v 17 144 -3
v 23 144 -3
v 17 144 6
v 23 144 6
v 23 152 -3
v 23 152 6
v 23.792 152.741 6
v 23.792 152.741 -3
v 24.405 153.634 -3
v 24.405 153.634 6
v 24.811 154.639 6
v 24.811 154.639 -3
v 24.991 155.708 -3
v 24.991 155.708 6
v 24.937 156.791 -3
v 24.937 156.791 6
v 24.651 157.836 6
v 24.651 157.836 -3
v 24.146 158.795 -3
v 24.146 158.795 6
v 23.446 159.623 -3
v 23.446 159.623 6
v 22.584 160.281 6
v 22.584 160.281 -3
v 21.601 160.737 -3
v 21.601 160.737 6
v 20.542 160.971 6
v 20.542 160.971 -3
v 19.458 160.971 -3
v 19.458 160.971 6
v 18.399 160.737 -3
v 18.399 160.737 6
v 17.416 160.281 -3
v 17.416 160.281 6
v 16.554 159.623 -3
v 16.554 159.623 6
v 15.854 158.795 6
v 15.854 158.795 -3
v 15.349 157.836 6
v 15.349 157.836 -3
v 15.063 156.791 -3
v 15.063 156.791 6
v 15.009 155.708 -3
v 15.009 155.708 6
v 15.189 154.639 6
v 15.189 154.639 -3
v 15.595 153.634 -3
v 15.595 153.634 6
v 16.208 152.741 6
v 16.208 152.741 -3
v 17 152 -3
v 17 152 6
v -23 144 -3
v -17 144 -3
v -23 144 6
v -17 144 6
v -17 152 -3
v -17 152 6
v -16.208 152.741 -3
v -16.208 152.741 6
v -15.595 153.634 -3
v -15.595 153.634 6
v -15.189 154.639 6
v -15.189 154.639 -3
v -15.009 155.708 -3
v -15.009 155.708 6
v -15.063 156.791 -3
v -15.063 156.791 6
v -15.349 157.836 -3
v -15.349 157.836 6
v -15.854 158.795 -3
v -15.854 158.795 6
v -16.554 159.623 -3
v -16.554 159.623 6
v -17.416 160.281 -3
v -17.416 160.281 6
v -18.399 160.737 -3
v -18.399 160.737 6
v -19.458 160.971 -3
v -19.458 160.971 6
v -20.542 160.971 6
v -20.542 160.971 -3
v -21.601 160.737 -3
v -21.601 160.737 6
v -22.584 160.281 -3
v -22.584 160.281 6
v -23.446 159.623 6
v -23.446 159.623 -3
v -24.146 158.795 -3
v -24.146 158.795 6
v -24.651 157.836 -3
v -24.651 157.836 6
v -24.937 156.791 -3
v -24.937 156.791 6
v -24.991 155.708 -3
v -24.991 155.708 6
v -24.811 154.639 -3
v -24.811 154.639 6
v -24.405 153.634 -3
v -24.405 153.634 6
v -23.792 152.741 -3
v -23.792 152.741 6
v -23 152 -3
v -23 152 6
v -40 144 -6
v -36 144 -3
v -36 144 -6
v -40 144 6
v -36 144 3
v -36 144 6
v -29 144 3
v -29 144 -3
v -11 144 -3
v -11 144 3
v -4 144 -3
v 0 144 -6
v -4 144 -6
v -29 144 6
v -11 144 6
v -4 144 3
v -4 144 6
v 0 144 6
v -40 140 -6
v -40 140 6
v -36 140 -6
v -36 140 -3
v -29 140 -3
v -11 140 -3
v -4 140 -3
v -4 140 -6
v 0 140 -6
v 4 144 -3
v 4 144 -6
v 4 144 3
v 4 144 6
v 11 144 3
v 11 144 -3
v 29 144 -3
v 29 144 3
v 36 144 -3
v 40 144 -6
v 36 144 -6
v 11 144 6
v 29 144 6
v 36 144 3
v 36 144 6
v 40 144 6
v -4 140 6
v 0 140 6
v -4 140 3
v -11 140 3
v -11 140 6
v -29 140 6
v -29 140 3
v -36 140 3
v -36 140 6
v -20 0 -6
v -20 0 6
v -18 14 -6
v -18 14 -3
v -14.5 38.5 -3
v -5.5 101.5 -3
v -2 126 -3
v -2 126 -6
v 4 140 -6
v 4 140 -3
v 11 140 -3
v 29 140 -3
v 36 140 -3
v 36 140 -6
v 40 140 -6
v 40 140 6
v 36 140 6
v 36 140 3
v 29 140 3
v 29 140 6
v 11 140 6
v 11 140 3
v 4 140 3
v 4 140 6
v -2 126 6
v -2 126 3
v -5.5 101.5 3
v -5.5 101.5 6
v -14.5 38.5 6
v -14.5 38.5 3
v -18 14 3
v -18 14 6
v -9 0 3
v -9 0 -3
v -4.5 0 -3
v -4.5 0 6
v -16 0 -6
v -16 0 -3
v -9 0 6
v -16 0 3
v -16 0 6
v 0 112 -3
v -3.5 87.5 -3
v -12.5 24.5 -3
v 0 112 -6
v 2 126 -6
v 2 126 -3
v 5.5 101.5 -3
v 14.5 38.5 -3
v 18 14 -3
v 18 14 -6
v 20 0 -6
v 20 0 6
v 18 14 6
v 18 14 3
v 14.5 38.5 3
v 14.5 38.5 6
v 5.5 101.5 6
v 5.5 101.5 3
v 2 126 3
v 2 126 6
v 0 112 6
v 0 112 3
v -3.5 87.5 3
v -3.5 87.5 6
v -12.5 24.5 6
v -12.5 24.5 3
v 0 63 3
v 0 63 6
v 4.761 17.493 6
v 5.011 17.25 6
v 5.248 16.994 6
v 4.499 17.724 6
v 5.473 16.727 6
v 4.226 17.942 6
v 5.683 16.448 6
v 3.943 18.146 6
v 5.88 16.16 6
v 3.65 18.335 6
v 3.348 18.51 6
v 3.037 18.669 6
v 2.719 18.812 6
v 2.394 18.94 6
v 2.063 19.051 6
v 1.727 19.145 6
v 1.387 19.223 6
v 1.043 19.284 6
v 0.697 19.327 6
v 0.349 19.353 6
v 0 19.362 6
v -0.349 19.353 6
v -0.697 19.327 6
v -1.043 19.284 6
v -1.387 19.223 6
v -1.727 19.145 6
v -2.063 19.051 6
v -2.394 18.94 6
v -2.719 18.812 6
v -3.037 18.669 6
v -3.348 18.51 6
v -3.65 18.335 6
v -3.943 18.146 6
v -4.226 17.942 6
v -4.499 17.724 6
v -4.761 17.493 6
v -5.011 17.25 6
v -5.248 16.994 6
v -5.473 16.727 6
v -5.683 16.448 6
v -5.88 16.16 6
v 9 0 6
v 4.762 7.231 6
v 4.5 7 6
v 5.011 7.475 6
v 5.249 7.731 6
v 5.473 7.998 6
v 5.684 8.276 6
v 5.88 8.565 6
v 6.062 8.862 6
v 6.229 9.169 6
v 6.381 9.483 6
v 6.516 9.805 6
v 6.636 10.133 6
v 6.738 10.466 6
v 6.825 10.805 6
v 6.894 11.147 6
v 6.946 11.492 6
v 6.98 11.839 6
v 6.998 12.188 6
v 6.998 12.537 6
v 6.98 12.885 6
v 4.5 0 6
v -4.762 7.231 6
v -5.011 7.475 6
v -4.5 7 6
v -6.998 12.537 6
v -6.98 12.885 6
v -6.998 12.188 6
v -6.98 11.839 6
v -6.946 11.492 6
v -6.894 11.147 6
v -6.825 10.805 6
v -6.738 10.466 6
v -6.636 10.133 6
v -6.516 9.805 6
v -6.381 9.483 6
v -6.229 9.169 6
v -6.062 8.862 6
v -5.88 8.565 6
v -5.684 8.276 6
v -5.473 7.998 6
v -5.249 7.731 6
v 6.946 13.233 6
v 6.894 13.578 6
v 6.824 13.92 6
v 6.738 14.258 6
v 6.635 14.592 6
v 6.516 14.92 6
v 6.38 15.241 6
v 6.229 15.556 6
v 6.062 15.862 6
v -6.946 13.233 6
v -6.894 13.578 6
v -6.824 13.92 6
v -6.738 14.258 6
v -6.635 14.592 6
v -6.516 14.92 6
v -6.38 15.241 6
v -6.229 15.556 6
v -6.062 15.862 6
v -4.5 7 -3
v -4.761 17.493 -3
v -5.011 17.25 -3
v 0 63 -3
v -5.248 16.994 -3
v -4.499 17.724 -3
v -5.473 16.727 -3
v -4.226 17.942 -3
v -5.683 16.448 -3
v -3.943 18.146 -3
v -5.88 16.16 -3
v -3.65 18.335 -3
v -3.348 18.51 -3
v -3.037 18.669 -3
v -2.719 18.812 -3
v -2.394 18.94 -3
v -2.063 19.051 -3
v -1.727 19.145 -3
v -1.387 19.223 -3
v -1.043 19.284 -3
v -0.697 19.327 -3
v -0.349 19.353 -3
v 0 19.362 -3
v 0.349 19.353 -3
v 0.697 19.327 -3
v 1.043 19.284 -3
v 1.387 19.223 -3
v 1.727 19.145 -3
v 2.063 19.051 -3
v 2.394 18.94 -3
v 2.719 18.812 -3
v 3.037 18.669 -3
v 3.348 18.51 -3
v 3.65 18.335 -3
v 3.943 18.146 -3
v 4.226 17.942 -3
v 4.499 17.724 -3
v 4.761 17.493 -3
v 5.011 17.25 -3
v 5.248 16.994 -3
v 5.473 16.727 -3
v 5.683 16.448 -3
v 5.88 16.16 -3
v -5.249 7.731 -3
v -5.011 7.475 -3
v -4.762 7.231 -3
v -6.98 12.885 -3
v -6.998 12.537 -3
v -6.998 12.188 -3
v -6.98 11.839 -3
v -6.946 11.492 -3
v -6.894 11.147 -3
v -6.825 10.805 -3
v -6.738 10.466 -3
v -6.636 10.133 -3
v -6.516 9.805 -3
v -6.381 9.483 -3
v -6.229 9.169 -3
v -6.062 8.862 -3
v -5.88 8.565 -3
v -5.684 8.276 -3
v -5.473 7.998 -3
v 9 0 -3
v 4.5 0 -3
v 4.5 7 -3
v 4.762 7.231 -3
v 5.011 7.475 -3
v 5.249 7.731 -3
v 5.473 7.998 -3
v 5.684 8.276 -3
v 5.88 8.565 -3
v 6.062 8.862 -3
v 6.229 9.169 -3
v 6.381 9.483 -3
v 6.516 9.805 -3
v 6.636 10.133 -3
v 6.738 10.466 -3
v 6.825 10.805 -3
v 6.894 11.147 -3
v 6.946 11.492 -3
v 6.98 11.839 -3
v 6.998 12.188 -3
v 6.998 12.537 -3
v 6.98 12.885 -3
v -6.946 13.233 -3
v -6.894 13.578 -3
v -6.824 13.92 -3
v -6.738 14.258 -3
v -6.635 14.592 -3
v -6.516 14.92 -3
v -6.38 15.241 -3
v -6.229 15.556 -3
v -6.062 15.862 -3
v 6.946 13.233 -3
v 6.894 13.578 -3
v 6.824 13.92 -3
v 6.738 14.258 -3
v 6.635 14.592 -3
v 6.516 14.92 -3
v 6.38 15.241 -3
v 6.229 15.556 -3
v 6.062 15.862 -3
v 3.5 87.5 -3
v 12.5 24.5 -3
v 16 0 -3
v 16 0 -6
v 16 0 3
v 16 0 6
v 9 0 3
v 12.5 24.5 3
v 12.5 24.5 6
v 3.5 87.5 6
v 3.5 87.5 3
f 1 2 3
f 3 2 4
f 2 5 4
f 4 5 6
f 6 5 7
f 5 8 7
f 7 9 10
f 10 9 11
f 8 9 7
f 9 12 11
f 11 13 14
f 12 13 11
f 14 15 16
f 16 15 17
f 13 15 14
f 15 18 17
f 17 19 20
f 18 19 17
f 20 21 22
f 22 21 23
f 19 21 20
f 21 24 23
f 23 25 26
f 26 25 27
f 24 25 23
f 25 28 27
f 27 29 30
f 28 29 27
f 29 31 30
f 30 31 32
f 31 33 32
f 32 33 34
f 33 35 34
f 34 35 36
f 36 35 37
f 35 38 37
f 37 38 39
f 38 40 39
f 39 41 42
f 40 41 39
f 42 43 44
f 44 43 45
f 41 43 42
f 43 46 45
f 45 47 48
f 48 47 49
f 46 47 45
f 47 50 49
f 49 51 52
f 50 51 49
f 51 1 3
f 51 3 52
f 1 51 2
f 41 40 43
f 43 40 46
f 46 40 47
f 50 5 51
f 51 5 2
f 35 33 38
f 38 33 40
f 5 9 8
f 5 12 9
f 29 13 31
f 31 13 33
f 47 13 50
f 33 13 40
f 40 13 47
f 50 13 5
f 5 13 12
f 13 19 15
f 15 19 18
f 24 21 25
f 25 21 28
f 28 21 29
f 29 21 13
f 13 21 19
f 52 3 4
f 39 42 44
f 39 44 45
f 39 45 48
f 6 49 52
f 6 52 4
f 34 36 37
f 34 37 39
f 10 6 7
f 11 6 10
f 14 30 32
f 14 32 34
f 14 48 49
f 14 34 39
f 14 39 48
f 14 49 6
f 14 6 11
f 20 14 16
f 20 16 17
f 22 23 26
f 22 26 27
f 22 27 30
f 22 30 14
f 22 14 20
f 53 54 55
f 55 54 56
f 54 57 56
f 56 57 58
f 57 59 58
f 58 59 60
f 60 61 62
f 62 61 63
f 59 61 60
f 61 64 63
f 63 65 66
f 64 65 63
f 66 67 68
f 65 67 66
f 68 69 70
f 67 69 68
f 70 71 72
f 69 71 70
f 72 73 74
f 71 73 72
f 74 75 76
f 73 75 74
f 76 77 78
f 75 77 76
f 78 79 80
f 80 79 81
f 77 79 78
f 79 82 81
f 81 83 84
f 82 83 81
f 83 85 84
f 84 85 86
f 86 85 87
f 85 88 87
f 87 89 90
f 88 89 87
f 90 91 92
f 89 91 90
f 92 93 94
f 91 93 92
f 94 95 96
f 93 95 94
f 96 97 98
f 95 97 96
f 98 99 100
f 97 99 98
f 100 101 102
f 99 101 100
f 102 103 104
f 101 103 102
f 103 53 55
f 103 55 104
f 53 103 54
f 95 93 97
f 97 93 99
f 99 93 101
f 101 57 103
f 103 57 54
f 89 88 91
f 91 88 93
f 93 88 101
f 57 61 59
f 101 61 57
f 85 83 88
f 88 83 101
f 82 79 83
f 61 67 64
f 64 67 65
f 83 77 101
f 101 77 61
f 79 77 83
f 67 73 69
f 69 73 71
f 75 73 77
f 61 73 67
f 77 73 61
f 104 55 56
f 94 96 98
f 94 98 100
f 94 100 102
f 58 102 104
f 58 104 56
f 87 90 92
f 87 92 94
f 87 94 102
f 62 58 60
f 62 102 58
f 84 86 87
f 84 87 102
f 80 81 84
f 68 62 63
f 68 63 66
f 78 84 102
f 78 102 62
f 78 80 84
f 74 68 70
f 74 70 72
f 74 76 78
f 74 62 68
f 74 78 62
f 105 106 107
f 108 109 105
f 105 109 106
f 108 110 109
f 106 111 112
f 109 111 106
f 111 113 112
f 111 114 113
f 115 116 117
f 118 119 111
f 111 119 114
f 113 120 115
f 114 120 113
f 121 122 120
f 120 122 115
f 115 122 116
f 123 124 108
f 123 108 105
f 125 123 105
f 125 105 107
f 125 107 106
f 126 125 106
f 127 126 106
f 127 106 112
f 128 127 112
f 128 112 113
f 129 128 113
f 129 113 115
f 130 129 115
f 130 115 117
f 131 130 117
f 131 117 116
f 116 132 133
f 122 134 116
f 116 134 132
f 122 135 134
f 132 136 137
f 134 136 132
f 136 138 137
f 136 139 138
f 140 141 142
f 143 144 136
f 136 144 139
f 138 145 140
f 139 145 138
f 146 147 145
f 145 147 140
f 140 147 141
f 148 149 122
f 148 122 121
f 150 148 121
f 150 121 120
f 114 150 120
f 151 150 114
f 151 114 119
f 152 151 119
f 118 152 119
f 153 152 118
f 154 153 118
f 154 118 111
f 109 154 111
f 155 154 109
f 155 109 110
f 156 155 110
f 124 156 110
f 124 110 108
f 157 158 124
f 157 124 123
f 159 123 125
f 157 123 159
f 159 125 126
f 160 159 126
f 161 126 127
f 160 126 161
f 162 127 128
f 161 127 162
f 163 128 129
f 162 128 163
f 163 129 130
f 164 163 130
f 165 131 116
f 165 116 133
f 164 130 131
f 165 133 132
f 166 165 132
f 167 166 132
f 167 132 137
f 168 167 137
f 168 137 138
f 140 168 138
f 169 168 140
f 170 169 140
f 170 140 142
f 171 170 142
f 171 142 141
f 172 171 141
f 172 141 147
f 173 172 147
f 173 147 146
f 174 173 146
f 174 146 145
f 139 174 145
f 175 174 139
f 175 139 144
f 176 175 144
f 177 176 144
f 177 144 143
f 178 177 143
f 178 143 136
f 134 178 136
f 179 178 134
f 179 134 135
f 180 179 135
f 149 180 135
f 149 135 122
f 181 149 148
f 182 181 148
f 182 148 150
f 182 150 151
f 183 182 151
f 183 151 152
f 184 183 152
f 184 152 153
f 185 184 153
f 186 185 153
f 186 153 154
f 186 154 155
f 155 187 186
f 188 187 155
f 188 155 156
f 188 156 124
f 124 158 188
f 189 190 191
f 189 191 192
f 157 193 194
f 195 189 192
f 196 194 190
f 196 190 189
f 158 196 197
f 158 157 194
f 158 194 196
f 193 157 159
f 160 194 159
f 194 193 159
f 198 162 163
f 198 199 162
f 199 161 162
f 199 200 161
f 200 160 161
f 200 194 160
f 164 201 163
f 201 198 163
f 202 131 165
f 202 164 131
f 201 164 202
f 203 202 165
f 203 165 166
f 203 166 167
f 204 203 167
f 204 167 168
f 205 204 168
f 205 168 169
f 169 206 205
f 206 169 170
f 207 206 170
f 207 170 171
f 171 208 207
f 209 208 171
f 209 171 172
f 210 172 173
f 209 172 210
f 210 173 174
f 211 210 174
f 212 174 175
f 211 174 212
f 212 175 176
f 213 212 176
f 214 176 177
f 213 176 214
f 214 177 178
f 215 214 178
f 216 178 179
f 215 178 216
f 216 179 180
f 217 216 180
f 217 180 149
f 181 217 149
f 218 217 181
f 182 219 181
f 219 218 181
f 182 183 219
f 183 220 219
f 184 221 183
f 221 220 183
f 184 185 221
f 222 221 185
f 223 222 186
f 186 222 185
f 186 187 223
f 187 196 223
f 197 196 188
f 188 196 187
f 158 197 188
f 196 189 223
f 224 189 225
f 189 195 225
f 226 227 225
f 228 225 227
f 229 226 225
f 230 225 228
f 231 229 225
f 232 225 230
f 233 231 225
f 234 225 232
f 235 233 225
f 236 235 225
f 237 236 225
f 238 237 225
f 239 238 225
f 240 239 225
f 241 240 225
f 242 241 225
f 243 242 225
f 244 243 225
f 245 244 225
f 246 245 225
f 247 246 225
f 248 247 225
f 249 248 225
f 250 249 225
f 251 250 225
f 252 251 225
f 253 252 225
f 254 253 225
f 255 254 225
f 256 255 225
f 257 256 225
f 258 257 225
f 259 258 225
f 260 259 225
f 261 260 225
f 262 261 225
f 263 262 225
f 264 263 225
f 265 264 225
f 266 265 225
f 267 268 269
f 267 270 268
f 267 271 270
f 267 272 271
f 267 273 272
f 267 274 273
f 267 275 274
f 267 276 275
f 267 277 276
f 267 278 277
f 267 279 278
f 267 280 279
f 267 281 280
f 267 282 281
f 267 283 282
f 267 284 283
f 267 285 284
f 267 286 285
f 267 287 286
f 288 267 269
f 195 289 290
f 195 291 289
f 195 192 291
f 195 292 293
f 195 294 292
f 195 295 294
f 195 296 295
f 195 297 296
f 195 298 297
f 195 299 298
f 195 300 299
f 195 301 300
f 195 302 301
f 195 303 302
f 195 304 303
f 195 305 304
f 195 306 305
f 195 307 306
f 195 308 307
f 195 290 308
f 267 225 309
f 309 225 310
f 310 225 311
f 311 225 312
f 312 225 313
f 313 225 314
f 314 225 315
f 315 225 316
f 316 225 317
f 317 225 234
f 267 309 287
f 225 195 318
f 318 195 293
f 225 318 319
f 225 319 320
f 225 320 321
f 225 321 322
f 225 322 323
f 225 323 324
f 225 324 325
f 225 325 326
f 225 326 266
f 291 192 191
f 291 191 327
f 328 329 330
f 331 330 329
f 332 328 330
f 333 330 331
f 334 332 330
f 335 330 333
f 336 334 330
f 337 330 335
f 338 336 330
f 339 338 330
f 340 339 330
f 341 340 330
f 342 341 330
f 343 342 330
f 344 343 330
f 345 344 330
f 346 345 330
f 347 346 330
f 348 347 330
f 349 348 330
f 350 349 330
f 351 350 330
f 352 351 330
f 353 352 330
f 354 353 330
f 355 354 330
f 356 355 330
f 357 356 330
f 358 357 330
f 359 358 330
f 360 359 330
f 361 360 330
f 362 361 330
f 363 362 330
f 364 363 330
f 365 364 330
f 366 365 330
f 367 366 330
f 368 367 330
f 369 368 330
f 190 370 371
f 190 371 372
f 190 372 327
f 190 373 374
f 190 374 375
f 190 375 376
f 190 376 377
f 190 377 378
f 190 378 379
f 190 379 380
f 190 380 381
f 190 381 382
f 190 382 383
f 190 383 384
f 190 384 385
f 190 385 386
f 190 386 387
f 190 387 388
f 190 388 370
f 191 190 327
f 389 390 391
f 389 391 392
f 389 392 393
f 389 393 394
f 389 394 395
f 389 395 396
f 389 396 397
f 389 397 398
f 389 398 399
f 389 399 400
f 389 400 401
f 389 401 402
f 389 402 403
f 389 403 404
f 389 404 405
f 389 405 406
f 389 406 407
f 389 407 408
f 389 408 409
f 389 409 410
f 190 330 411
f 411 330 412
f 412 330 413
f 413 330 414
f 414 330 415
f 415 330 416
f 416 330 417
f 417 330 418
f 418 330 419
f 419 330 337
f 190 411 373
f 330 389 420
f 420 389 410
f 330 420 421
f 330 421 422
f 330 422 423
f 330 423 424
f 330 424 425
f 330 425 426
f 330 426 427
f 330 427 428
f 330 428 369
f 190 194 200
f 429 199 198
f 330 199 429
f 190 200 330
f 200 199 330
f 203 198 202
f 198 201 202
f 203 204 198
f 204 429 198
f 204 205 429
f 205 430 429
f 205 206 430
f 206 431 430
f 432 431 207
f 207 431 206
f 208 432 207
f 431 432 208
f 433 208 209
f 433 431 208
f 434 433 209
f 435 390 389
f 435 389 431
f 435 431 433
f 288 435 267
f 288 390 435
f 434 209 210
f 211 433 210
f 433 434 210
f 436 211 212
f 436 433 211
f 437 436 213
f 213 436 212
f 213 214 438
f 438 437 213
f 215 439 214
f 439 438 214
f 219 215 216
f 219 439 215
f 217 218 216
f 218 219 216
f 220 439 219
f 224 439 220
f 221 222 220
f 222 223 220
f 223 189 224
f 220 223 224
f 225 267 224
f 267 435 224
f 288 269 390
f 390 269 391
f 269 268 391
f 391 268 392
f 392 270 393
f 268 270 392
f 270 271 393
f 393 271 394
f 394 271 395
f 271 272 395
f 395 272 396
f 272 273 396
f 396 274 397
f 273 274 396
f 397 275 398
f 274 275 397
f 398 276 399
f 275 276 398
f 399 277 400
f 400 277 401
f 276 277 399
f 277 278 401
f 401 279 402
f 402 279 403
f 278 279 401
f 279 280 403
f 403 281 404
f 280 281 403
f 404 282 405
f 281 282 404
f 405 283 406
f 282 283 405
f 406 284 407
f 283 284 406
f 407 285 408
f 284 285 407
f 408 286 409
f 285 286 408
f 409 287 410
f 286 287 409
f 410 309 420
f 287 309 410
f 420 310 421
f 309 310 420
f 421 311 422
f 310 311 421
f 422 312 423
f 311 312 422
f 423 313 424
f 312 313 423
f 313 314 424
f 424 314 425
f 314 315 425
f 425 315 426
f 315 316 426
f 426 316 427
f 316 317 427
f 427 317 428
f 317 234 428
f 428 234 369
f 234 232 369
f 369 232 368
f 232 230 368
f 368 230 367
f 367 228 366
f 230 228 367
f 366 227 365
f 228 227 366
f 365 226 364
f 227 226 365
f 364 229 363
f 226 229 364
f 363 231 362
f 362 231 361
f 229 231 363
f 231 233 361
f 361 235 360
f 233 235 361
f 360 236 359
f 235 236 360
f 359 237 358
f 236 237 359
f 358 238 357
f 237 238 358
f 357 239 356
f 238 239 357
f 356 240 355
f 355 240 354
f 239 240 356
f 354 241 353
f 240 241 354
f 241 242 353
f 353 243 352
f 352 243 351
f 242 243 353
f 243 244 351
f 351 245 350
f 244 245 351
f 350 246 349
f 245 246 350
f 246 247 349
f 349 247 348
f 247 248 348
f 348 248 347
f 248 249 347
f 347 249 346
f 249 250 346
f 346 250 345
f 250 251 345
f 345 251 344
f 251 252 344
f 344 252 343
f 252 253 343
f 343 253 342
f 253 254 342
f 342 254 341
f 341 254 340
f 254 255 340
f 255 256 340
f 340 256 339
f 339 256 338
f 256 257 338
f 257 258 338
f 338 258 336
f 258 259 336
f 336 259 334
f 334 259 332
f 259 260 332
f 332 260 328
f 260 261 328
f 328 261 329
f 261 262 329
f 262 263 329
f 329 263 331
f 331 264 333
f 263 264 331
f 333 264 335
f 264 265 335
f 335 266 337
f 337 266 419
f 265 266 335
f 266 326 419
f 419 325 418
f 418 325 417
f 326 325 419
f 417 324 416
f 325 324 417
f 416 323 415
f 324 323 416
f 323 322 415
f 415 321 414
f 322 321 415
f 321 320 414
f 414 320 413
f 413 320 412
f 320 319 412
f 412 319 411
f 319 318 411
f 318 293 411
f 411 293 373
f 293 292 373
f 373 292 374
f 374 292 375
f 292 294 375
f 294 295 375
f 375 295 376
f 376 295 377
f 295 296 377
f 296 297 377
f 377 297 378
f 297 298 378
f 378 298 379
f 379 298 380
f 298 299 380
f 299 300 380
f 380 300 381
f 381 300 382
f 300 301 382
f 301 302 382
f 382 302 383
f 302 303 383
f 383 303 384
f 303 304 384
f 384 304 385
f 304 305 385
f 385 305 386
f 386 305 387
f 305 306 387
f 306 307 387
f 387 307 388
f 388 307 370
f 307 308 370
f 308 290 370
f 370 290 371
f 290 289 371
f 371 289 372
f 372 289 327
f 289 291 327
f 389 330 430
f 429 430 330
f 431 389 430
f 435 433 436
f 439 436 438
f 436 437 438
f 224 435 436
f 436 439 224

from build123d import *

# Parameters (mm, degrees)
SKETCH004_W       = 32
SKETCH004_H       = 3
SKETCH005_W       = 7
SKETCH005_H       = 3
SKETCH006_W       = 7
SKETCH006_H       = 3
POCKET_DEPTH      = 6.001
POCKET_DEPTH_BACK = -6.001
PAD001_DEPTH      = 6
PAD001_DEPTH_BACK = 3
PAD002_DEPTH      = 6
PAD002_DEPTH_BACK = 3


with BuildPart() as body:
    # AdditivePipe: sweep along a path in Sketch
    with BuildLine(Plane.XY) as additivepipe_path:
        Line((-20, 144), (-20, 140))
        Line((-20, 140), (0, 0))
    # Sketch002 → AdditivePipe (sweep)
    with BuildSketch(Plane.XZ):
        Polygon((-20, 6), (-20, -6), (-16, -6), (-16, -3), (-9, -3), (9, -3), (16, -3), (16, -6), (20, -6), (20, 6), (16, 6), (16, 3), (9, 3), (9, 6), (-9, 6), (-9, 3), (-16, 3), (-16, 6), align=None)
    sweep(path=additivepipe_path.line)

    # AdditivePipe001: sweep along a path in Sketch001
    with BuildLine(Plane.XY) as additivepipe001_path:
        Line((20, 144), (20, 140))
        Line((20, 140), (0, 0))
    # Sketch002 → AdditivePipe001 (sweep)
    with BuildSketch(Plane.XZ):
        Polygon((-20, 6), (-20, -6), (-16, -6), (-16, -3), (-9, -3), (9, -3), (16, -3), (16, -6), (20, -6), (20, 6), (16, 6), (16, 3), (9, 3), (9, 6), (-9, 6), (-9, 3), (-16, 3), (-16, 6), align=None)
    sweep(path=additivepipe001_path.line)

    # SubtractivePipe: sweep along a path in Sketch
    with BuildLine(Plane.XY) as subtractivepipe_path:
        Line((-20, 144), (-20, 140))
        Line((-20, 140), (0, 0))
    # Sketch004 → SubtractivePipe (sweep, cut)
    with BuildSketch(Plane.XZ):
        with Locations((0, -4.5)):
            Rectangle(SKETCH004_W, SKETCH004_H)
    sweep(path=subtractivepipe_path.line, mode=Mode.SUBTRACT)

    # SubtractivePipe001: sweep along a path in Sketch001
    with BuildLine(Plane.XY) as subtractivepipe001_path:
        Line((20, 144), (20, 140))
        Line((20, 140), (0, 0))
    # Sketch004 → SubtractivePipe001 (sweep, cut)
    with BuildSketch(Plane.XZ):
        with Locations((0, -4.5)):
            Rectangle(SKETCH004_W, SKETCH004_H)
    sweep(path=subtractivepipe001_path.line, mode=Mode.SUBTRACT)

    # SubtractivePipe002: sweep along a path in Sketch
    with BuildLine(Plane.XY) as subtractivepipe002_path:
        Line((-20, 144), (-20, 140))
        Line((-20, 140), (0, 0))
    # Sketch005 → SubtractivePipe002 (sweep, cut)
    with BuildSketch(Plane.XZ):
        with Locations((-12.5, 4.5)):
            Rectangle(SKETCH005_W, SKETCH005_H)
    sweep(path=subtractivepipe002_path.line, mode=Mode.SUBTRACT)

    # SubtractivePipe003: sweep along a path in Sketch001
    with BuildLine(Plane.XY) as subtractivepipe003_path:
        Line((20, 144), (20, 140))
        Line((20, 140), (0, 0))
    # Sketch005 → SubtractivePipe003 (sweep, cut)
    with BuildSketch(Plane.XZ):
        with Locations((-12.5, 4.5)):
            Rectangle(SKETCH005_W, SKETCH005_H)
    sweep(path=subtractivepipe003_path.line, mode=Mode.SUBTRACT)

    # SubtractivePipe004: sweep along a path in Sketch
    with BuildLine(Plane.XY) as subtractivepipe004_path:
        Line((-20, 144), (-20, 140))
        Line((-20, 140), (0, 0))
    # Sketch006 → SubtractivePipe004 (sweep, cut)
    with BuildSketch(Plane.XZ):
        with Locations((12.5, 4.5)):
            Rectangle(SKETCH006_W, SKETCH006_H)
    sweep(path=subtractivepipe004_path.line, mode=Mode.SUBTRACT)

    # SubtractivePipe005: sweep along a path in Sketch001
    with BuildLine(Plane.XY) as subtractivepipe005_path:
        Line((20, 144), (20, 140))
        Line((20, 140), (0, 0))
    # Sketch006 → SubtractivePipe005 (sweep, cut)
    with BuildSketch(Plane.XZ):
        with Locations((12.5, 4.5)):
            Rectangle(SKETCH006_W, SKETCH006_H)
    sweep(path=subtractivepipe005_path.line, mode=Mode.SUBTRACT)

    # Sketch003 → Pocket (cut, two sides)
    with BuildSketch(Plane.XY) as pocket_sk:
        with BuildLine():
            Line((-4.5, 0), (4.5, 0))
            Line((4.5, 0), (4.5, 7))
            ThreePointArc((4.5, 7), (0, 19.361903), (-4.5, 7))
            Line((-4.5, 0), (-4.5, 7))
        make_face()
    extrude(amount=-POCKET_DEPTH, mode=Mode.SUBTRACT)
    extrude(pocket_sk.sketch, amount=-POCKET_DEPTH_BACK, mode=Mode.SUBTRACT)


with BuildPart() as male2:
    # Sketch010 → Pad001 (new body, two sides)
    with BuildSketch(Plane.XY) as pad001_sk:
        with BuildLine():
            Line((-23, 144), (-17, 144))
            Line((-17, 144), (-17, 152))
            ThreePointArc((-17, 152), (-20, 161), (-23, 152))
            Line((-23, 144), (-23, 152))
        make_face()
    extrude(amount=PAD001_DEPTH)
    extrude(pad001_sk.sketch, amount=-PAD001_DEPTH_BACK)


with BuildPart() as male3:
    # Sketch011 → Pad002 (new body, two sides)
    with BuildSketch(Plane.XY) as pad002_sk:
        with BuildLine():
            Line((17, 144), (23, 144))
            Line((23, 144), (23, 152))
            ThreePointArc((23, 152), (20, 161), (17, 152))
            Line((17, 144), (17, 152))
        make_face()
    extrude(amount=PAD002_DEPTH)
    extrude(pad002_sk.sketch, amount=-PAD002_DEPTH_BACK)


solid = Compound([body.part, male2.part, male3.part])
